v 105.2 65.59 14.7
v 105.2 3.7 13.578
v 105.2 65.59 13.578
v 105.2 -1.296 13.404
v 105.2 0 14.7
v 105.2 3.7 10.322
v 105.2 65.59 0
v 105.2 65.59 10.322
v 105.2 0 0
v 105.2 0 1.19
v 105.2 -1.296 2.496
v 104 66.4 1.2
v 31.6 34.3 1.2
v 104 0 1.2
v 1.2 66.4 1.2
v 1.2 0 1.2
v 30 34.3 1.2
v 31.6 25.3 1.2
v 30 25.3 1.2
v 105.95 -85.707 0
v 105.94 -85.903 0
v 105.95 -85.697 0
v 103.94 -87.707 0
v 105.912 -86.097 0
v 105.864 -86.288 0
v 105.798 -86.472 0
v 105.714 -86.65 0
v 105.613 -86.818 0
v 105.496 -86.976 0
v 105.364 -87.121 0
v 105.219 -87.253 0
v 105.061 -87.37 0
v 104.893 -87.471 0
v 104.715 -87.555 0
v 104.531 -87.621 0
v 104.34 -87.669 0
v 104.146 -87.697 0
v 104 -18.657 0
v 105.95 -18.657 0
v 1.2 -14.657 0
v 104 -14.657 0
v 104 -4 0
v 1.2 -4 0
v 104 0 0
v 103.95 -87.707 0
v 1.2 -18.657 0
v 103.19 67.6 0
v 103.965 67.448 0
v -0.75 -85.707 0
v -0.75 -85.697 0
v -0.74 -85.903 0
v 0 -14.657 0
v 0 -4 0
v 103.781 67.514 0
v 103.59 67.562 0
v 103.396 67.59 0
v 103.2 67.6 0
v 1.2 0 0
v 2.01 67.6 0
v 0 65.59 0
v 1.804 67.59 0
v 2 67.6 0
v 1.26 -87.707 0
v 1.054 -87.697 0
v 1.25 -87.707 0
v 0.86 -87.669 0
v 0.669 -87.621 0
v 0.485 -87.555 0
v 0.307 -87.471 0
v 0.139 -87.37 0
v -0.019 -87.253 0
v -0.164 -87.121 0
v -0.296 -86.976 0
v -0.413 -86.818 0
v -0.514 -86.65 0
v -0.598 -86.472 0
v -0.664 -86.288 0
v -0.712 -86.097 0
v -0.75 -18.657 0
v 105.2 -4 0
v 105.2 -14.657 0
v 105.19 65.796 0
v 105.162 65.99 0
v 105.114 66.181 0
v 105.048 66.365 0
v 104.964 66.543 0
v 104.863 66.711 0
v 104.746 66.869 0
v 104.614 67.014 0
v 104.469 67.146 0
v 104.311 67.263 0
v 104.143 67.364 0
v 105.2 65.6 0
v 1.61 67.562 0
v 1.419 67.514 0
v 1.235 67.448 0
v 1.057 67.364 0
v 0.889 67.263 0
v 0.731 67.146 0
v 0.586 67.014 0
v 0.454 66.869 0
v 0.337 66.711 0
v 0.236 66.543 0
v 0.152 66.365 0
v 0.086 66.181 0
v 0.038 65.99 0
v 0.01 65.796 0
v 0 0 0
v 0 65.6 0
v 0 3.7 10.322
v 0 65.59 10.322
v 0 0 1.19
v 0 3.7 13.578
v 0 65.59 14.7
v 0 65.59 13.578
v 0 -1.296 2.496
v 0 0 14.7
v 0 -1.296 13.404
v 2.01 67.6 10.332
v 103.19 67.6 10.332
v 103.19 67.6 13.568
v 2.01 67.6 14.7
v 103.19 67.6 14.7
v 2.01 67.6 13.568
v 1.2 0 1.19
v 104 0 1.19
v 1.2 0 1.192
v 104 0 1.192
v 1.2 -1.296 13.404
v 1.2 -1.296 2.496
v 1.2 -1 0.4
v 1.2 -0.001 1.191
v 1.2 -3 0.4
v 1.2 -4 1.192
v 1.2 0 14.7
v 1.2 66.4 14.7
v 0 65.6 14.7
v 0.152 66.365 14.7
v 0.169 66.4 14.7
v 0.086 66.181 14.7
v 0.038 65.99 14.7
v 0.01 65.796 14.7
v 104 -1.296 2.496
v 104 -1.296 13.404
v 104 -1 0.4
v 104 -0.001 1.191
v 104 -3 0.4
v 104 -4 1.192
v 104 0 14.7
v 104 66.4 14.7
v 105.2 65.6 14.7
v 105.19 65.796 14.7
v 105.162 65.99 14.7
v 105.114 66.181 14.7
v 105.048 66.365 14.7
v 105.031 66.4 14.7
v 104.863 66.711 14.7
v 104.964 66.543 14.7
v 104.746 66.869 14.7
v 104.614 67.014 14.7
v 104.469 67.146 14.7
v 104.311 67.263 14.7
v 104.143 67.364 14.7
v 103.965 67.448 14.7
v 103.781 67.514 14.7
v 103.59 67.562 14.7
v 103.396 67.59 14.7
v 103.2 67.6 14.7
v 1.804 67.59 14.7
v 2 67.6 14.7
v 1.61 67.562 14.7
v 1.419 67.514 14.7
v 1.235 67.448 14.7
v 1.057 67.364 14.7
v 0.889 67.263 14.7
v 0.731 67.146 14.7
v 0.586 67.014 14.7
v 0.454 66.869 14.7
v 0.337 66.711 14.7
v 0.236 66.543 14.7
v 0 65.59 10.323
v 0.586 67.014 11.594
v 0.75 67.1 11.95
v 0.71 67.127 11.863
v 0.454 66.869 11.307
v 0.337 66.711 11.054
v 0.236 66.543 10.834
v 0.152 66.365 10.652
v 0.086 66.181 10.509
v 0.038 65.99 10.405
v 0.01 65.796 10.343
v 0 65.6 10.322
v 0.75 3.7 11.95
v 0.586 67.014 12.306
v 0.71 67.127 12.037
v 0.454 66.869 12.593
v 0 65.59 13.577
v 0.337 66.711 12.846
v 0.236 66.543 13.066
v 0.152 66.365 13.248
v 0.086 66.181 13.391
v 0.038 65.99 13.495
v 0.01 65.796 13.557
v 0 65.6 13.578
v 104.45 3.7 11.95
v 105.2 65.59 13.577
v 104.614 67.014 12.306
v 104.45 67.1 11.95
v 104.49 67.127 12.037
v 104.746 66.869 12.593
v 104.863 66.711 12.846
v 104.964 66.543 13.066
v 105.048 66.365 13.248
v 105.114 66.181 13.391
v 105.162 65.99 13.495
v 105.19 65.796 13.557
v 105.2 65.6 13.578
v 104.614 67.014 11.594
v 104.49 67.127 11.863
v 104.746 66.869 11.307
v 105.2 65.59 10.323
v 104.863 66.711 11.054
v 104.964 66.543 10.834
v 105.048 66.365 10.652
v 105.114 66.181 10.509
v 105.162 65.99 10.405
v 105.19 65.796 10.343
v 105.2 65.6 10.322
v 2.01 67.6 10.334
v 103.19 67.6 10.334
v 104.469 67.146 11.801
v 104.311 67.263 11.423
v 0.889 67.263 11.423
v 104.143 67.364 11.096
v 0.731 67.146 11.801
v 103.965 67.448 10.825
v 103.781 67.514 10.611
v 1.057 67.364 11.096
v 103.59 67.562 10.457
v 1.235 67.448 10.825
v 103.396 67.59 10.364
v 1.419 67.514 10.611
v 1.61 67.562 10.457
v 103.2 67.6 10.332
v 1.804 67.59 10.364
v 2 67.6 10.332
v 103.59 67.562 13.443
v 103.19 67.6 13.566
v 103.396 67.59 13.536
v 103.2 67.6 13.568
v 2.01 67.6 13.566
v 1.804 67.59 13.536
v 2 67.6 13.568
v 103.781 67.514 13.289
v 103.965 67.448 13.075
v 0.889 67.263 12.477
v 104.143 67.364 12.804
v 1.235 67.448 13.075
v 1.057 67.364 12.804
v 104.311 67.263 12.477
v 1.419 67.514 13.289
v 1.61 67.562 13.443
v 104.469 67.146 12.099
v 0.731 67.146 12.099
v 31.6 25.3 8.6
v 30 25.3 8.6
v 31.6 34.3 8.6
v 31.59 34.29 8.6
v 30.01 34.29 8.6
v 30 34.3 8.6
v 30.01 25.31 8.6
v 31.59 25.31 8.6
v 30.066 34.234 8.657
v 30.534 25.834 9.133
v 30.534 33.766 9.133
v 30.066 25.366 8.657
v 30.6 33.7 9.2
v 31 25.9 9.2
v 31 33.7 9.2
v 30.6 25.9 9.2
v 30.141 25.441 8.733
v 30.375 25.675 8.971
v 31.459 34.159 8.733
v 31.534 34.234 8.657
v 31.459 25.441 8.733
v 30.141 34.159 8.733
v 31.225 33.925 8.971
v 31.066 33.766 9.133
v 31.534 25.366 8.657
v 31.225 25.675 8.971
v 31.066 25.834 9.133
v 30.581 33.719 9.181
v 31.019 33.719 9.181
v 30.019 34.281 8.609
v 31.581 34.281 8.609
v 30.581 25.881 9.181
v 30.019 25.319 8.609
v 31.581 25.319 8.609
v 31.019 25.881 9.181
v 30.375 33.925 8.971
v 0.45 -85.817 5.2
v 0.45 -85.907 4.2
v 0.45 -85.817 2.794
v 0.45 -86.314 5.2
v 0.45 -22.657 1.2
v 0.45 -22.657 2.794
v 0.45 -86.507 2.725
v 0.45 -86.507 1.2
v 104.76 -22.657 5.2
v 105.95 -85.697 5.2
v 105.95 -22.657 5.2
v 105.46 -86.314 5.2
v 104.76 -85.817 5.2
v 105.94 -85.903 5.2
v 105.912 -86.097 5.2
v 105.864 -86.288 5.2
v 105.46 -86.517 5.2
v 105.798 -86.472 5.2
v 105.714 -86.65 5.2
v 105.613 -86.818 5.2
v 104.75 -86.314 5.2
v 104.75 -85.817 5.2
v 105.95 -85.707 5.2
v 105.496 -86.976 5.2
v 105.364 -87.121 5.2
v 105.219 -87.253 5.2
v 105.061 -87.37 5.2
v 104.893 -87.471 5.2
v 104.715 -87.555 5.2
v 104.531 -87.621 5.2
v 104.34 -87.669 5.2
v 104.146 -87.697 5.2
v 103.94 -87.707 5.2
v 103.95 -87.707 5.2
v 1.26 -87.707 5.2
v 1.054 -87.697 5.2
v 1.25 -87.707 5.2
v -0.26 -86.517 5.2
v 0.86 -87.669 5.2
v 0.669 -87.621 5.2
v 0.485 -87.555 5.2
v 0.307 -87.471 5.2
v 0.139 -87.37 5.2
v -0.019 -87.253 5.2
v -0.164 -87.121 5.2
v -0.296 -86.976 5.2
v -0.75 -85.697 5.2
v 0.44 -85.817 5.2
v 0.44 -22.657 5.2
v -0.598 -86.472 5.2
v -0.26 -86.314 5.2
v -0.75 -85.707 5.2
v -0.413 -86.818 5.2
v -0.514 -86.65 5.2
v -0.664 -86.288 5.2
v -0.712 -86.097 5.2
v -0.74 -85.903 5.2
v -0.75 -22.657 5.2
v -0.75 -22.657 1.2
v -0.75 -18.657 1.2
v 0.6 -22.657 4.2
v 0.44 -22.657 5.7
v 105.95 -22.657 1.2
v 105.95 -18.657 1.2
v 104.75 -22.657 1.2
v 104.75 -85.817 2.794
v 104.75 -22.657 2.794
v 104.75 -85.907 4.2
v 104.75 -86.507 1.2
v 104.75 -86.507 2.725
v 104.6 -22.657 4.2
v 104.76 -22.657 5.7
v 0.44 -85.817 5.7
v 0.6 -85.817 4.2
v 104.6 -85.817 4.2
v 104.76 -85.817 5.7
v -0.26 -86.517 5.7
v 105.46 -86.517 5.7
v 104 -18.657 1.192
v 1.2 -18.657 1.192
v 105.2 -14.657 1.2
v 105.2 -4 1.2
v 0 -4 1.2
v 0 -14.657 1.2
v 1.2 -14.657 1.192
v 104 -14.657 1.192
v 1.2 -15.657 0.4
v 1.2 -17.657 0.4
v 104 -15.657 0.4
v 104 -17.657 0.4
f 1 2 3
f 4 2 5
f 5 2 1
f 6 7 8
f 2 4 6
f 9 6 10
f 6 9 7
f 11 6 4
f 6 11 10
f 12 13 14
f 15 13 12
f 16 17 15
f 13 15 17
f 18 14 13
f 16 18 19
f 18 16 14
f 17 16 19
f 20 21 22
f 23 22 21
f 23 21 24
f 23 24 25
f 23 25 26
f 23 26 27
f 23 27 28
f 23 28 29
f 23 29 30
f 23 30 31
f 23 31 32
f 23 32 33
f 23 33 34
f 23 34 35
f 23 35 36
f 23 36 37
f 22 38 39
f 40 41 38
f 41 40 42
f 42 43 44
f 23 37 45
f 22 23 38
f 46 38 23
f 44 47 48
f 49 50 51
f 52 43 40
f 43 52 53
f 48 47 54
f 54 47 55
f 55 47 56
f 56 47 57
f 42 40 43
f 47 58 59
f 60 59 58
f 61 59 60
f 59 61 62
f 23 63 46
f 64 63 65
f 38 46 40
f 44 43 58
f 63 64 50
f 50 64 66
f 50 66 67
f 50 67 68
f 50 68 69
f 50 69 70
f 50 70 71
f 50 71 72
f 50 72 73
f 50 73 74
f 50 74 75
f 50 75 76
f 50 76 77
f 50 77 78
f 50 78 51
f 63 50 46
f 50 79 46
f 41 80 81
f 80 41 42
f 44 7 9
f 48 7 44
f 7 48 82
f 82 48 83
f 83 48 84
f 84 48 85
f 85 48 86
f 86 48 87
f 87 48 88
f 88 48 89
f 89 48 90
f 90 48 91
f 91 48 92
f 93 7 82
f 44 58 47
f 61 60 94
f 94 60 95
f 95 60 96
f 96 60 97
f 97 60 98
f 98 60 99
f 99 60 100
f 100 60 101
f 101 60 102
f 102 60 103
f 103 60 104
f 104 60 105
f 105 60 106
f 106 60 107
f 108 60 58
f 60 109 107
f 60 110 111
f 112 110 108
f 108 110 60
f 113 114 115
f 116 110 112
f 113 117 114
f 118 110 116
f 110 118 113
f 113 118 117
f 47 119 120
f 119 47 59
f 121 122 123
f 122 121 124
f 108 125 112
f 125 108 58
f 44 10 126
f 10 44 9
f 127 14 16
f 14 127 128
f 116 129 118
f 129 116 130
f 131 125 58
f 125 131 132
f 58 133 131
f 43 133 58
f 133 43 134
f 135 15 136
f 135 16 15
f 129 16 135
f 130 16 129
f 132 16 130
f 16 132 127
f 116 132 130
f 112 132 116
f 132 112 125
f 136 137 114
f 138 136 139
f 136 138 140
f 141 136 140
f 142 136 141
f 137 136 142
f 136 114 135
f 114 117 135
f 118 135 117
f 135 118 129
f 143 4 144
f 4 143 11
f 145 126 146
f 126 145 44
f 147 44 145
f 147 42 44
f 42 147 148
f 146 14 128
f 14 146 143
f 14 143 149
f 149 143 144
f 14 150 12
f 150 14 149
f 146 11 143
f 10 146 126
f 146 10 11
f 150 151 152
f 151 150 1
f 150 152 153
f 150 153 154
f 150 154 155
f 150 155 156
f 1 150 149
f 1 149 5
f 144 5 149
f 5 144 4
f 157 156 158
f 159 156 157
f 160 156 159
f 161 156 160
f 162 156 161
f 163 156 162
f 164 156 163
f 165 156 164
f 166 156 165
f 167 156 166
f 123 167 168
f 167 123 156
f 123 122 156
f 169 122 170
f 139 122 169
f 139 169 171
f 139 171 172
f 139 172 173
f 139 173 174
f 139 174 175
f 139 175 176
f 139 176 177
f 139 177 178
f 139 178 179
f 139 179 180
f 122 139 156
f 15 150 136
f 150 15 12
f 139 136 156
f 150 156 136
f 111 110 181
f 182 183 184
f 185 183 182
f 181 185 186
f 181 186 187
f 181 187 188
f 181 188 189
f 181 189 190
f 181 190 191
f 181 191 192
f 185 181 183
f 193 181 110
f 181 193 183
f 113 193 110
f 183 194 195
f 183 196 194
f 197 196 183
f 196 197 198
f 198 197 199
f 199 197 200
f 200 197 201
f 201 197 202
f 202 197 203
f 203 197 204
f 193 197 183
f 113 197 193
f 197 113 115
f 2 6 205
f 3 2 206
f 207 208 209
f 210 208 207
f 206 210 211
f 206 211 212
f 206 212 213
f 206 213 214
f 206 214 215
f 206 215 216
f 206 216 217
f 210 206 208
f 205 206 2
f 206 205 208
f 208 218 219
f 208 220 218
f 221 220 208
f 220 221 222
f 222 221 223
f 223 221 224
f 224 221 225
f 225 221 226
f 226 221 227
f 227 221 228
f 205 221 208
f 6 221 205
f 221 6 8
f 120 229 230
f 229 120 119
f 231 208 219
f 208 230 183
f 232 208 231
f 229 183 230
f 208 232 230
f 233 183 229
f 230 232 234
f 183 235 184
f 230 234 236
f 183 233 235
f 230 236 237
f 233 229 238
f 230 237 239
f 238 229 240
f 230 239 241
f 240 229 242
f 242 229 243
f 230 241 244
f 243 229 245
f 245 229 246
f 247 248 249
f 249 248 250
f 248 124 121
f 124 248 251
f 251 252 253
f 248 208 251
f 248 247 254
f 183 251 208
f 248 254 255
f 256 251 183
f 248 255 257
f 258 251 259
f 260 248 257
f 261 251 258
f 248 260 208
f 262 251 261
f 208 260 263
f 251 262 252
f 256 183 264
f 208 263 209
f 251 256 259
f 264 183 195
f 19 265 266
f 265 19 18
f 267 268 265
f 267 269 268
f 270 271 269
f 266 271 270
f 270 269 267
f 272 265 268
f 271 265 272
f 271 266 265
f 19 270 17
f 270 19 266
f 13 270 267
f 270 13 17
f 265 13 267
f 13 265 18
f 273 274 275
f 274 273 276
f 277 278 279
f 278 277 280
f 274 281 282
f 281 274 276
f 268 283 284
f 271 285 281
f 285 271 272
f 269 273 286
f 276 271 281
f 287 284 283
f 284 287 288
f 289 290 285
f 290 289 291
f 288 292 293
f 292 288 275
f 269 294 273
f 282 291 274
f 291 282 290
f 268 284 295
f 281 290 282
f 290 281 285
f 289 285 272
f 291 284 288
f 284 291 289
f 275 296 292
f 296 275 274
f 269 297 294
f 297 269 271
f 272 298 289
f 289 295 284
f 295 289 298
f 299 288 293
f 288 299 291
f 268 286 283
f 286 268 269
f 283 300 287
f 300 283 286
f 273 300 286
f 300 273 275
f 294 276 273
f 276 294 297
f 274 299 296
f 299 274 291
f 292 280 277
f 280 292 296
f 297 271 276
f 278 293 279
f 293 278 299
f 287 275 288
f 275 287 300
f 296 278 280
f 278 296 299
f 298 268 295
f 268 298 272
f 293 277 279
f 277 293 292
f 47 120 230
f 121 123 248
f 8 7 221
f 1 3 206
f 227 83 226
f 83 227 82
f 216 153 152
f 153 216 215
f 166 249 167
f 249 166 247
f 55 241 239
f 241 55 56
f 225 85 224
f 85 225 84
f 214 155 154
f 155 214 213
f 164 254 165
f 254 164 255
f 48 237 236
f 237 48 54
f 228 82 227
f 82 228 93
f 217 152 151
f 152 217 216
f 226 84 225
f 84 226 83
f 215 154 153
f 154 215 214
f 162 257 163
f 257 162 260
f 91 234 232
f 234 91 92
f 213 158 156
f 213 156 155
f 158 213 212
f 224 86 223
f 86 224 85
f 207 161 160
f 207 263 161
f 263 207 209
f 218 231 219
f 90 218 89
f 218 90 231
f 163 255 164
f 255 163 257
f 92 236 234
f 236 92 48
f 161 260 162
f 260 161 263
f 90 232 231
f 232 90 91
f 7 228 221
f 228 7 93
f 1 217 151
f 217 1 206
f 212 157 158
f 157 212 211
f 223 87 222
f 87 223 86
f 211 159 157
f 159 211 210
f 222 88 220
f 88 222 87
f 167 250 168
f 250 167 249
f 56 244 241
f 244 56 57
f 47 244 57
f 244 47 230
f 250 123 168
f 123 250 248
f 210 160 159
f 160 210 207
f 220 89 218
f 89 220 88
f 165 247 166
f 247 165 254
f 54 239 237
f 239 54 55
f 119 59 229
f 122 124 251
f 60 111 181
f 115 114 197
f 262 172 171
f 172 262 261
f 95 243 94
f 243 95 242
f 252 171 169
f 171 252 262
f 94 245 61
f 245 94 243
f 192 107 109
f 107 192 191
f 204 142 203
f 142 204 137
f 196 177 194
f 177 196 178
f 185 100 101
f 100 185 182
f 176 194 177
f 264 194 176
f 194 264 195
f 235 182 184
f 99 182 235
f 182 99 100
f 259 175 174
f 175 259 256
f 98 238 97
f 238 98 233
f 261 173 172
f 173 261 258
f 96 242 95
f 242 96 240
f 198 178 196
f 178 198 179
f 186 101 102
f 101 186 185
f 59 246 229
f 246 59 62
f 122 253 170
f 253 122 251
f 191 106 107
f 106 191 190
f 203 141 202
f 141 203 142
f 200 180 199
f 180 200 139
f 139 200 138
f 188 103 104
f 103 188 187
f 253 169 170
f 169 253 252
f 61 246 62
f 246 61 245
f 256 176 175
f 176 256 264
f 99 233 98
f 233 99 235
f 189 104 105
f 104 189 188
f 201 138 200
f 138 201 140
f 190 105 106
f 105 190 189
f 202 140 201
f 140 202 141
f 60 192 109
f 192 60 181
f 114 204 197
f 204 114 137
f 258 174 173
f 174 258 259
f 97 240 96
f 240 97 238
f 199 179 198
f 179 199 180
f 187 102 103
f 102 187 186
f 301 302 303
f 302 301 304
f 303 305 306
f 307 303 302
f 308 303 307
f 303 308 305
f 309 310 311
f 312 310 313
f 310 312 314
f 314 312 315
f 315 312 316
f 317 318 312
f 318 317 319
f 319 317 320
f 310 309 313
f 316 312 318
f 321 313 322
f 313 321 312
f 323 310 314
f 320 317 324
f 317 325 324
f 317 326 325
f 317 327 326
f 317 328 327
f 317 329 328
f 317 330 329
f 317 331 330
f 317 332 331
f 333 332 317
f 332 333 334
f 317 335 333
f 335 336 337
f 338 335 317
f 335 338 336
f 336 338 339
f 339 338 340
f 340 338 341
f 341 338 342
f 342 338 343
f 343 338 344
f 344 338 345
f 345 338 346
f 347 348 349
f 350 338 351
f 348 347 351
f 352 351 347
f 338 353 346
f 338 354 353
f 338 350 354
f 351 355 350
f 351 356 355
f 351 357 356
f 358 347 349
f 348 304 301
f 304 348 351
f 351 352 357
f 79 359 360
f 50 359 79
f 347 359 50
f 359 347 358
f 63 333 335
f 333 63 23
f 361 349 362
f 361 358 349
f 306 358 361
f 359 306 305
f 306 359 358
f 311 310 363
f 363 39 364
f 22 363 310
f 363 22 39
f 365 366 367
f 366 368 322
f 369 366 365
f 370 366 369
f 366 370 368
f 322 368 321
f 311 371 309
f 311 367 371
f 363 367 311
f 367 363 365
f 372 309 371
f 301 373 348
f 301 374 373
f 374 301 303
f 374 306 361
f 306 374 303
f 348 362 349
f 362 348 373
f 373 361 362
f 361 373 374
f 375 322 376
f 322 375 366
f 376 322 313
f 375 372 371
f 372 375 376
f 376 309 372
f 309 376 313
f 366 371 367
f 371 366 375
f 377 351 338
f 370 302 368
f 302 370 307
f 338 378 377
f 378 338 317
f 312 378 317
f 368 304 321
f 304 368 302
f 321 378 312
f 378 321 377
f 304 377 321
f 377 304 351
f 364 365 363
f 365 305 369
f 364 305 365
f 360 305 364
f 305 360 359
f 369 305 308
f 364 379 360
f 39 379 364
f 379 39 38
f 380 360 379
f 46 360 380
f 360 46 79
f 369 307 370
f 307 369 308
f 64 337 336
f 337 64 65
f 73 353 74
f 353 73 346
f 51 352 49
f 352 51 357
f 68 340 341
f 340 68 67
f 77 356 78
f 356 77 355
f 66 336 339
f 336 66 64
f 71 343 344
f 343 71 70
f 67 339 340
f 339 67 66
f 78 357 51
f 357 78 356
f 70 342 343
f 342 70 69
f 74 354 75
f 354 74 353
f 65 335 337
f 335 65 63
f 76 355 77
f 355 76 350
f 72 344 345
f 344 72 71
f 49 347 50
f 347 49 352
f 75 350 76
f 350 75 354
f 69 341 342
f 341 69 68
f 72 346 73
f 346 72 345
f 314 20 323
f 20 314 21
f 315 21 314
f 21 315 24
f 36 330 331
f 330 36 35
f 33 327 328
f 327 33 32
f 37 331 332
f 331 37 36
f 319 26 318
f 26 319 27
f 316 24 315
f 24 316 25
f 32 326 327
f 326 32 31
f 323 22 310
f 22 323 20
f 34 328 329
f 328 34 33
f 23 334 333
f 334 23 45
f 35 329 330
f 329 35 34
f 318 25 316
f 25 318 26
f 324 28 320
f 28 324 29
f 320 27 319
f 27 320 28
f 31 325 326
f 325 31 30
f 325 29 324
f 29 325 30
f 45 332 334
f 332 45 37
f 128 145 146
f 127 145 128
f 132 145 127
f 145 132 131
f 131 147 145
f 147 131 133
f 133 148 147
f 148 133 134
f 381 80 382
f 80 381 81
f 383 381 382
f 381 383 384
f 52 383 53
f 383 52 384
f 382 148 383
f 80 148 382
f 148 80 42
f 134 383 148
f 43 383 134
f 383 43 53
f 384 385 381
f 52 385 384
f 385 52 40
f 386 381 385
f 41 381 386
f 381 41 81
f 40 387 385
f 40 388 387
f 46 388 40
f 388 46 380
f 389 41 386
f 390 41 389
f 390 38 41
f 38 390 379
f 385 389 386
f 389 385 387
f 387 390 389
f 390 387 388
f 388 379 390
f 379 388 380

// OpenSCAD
// one-piece compact-cassette case. export "flat" for printing.
// dimensions are millimeters. see README.md before printing the PLA hinges.

/* [view] */
layout = "flat"; // [flat, closed, hinge_test, hinge_test_flat]
show_cassette = false;

/* [cassette envelope] */
cassette_length = 101.6;
cassette_depth = 64;
cassette_thickness = 12.7;
clearance_xy = 0.6;
clearance_z = 0.8;

/* [shell] */
panel = 1.2;
wall = 1.2;
closure_gap = 0.25;
// outer radius for the 2 corners away from the hinge; the 2 corners nearest
// the hinge stay square so the hinge still meets a flush straight edge.
// kept modest relative to `wall` so the rounded corner doesn't thin out.
corner_radius = 2; // [0:0.5:6]

/* [living hinges] */
hinge_thickness = 0.4;
// flexible distance across each hinge, not its length along the spine.
hinge_length = 4;
// keep this at or above `wall` so the web meets the side walls with no dust gap.
hinge_end_inset = 1.2;
// each hinge end ramps from panel thickness up to this length before going thin,
// instead of stepping straight down to hinge_thickness.
hinge_taper = 1;

/* [lid fit] */
skirt_thickness = 1.2;
skirt_depth = 4;
skirt_clearance = 0.25;
// tighter (slightly interference) fit for the two end skirts only; keeps
// them from rattling side to side. the hinge itself has some lateral give,
// so this runs a bit negative rather than just a snug slip fit.
skirt_clearance_side = -0.45;
skirt_rear_setback = 4;
// vertical size of the lip/groove snap feature; shared by both edges so the
// bump and groove stay easy to feel/see instead of a faint sliver.
lip_height = 3; // [1:0.25:4]
// retention lip on the long edge opposite the hinge.
lip_interference = 0.35; // [0.05:0.05:0.6]
// retention lip on the two narrow end edges; these take the strain since the
// hinge already restrains the opposite long edge.
lip_interference_side = 0.6; // [0.1:0.05:0.9]
pull_tab_enabled = false;
pull_extension = 3;

/* [single rectangular hub lock] */
hub_lock_enabled = true;
// provisional blade span across opposing tooth gaps; tune to your cassette.
hub_lock_span = 9; // [7:0.1:12]
hub_lock_thickness = 1.6; // [0.8:0.1:3.2]
hub_lock_height = 8; // [4:0.2:10]
hub_lock_tip_chamfer = 0.6; // [0:0.1:1]
// zero degrees puts the long side parallel to the cassette's long edge.
hub_lock_angle = 90; // [0:5:175]
// provisional measurements from the cassette's left and non-tape edges.
// hub_lock_y was measured on a physical print/cassette to a position that
// works with the cassette inserted either direction.
hub_lock_x = 29; // [24:0.1:34]
hub_lock_y = 28; // [25:0.1:36]

/* [lettering] */
// installed font family and style; choose one from OpenSCAD's font list.
text_font = "Liberation Sans:style=Bold";
// engraving depth or raised height, measured from the exterior surface.
text_relief = 0.4; // [0.2:0.2:1]

/* [front lettering - lid] */
front_text = "";
front_text_mode = "engraved"; // [engraved, raised, off]
// font size in millimeters.
front_text_size = 8; // [2:0.5:18]
front_text_rotation = 0; // [0:90:270]
front_text_x = 0; // [-45:0.5:45]
front_text_y = 0; // [-25:0.5:25]

/* [back lettering - base] */
back_text = "";
back_text_mode = "engraved"; // [engraved, raised, off]
// font size in millimeters.
back_text_size = 8; // [2:0.5:18]
back_text_rotation = 0; // [0:90:270]
back_text_x = 0; // [-45:0.5:45]
back_text_y = 0; // [-25:0.5:25]

/* [edge lettering - spine] */
spine_text = "";
// optional right-hand label; when set, the main spine label moves to the left.
spine_text_right = "";
spine_text_mode = "engraved"; // [engraved, raised, off]
// font size in millimeters.
spine_text_size = 4; // [2:0.5:12]
spine_text_rotation = 0; // [0:90:270]
spine_text_x = 0; // [-45:0.5:45]
spine_text_y = 0; // [-4:0.5:4]

/* [Hidden] */
$fn = 64;
eps = 0.01;
w = cassette_length + 2 * (clearance_xy + wall);
d = cassette_depth + 2 * (clearance_xy + wall);
wall_top = panel + cassette_thickness + clearance_z;
lid_inner_z = wall_top + closure_gap;
closed_height = lid_inner_z + panel;
neutral_z = hinge_thickness / 2;
// each 90-degree bend consumes a quarter-circle of the flat web.
bend_r = 2 * hinge_length / PI;
spine_length = closed_height - hinge_thickness - 2 * bend_r;
fold_span = 2 * hinge_length + spine_length;
hinge_width = w - 2 * hinge_end_inset;
skirt_outer = skirt_clearance + skirt_thickness;
skirt_outer_side = skirt_clearance_side + skirt_thickness;
pull_projection = pull_tab_enabled ? pull_extension : 0;
lip_half_height = lip_height / 2;
lip_z = panel + skirt_depth - 1;
groove_z = closed_height - lip_z;
rear_extension = max(0, bend_r - (panel - neutral_z) - closure_gap);
lock_half_x = (abs(cos(hub_lock_angle)) * hub_lock_span +
               abs(sin(hub_lock_angle)) * hub_lock_thickness) / 2;
lock_half_y = (abs(sin(hub_lock_angle)) * hub_lock_span +
               abs(cos(hub_lock_angle)) * hub_lock_thickness) / 2;

assert(layout == "flat" || layout == "closed" ||
       layout == "hinge_test" || layout == "hinge_test_flat",
       "choose flat, closed, hinge_test, or hinge_test_flat.");
assert(min(cassette_length, cassette_depth, cassette_thickness,
           clearance_xy, clearance_z, panel, wall, closure_gap,
           hinge_thickness, hinge_length, skirt_thickness, skirt_clearance) > 0,
       "shell, cassette, hinge and clearance dimensions must be positive.");
assert(hinge_thickness < panel && spine_length > panel,
       "hinges must be thinner than panels; reduce hinge_length for this depth.");
assert(corner_radius >= 0 && corner_radius < min(w, d) / 4 &&
       corner_radius < d - skirt_rear_setback,
       "corner_radius must stay small relative to the shell and clear the hinge skirt setback.");
assert(hinge_end_inset >= wall && hinge_width > 0,
       "hinge_end_inset must reach the side walls (>= wall) with a positive hinge width.");
assert(hinge_taper >= 0 && 2 * hinge_taper < hinge_length,
       "hinge_taper must leave a positive thin flex zone in the middle of the hinge.");
assert(skirt_clearance_side > -skirt_thickness,
       "skirt_clearance_side must leave positive material in the end skirts.");
assert(skirt_rear_setback > rear_extension && skirt_rear_setback < d,
       "keep the lid skirt clear of the spine.");
assert(lip_interference > 0 && lip_interference + 0.15 < wall &&
       lip_interference_side > 0 && lip_interference_side + 0.15 < wall,
       "lips need positive interference and material behind their grooves.");
assert(skirt_depth > 1 + lip_half_height + 0.15 &&
       groove_z - lip_half_height - 0.15 > panel &&
       groove_z + lip_half_height + 0.15 < wall_top,
       "lip_height must fit within the skirt and base walls.");
assert(!pull_tab_enabled || pull_extension > 0,
       "enabled pull tab must have a positive extension.");
assert(!hub_lock_enabled ||
       (min(hub_lock_span, hub_lock_thickness, hub_lock_height) > 0 &&
        hub_lock_height < cassette_thickness &&
        hub_lock_tip_chamfer >= 0 &&
        hub_lock_tip_chamfer < min(hub_lock_span, hub_lock_thickness) / 2 &&
        hub_lock_tip_chamfer < hub_lock_height &&
        hub_lock_x > lock_half_x &&
        hub_lock_x < cassette_length - lock_half_x &&
        hub_lock_y > lock_half_y &&
        hub_lock_y < cassette_depth - lock_half_y),
       "keep the lock inside the cassette; chamfer must leave a positive tip.");

echo(print_footprint = [w + 2 * skirt_outer_side,
     2 * d + fold_span + skirt_outer + pull_projection],
     nominal_closed_size = [w + 2 * skirt_outer_side,
     d + skirt_outer + pull_projection + bend_r + neutral_z, closed_height],
     hinge_radius = bend_r, straight_spine = spine_length);

// extrude a Y/Z profile along X without changing its handedness.
module yz_prism(points, length) {
    multmatrix([[0, 0, 1, 0], [1, 0, 0, 0],
                [0, 1, 0, 0], [0, 0, 0, 1]])
        linear_extrude(height = length) polygon(points);
}

// extrude an X/Z profile along Y.
module xz_prism(points, length) {
    translate([0, length, 0])
        rotate([90, 0, 0])
            linear_extrude(height = length) polygon(points);
}

// subtracts the sharp sliver outside a radius-r quarter circle at corner
// (cx, cy); (sx, sy) each +-1 and point from the corner into the solid.
// the cube is padded by eps on every side so none of its corners land
// exactly on the circle (an exact tangency there causes non-manifold
// results).
module round_outer_corner(cx, cy, sx, sy, r, z0, z1) {
    if (r > 0)
        translate([cx + min(sx, 0) * r - eps, cy + min(sy, 0) * r - eps, z0])
            difference() {
                cube([r + 2 * eps, r + 2 * eps, z1 - z0]);
                translate([max(sx, 0) * r + eps, max(sy, 0) * r + eps, -eps])
                    cylinder(r = r, h = z1 - z0 + 2 * eps);
            }
}

module exterior_label(value, mode, size, angle, offset_x, offset_y,
                      face_depth, flip_y = true, right_value = "") {
    assert(mode == "engraved" || mode == "raised" || mode == "off",
           "text mode must be engraved, raised, or off.");
    if ((value != "" || right_value != "") && mode != "off") {
        assert(size > 0 && text_relief > 0 && w > 2 && face_depth > 2,
               "lettering needs positive size, relief and usable face area.");
        assert(mode != "engraved" || panel - text_relief >= 0.4 - 0.000001,
               "engraving must leave at least 0.4 mm of panel thickness.");
        assert(angle == 0 || angle == 90 || angle == 180 || angle == 270,
               "text rotation must be 0, 90, 180, or 270 degrees.");
        echo("lettering is clipped 1 mm inside its face; check size and position.",
             face_text = value, right_text = right_value);
        if (mode == "raised")
            echo("WARNING: raised exterior lettering projects below the flat print; review bed contact and supports.");
    }
    difference() {
        union() {
            children();
            if ((value != "" || right_value != "") && mode == "raised")
                label_shape(true);
        }
        if ((value != "" || right_value != "") && mode == "engraved")
            label_shape(false);
    }

    module label_shape(raised) {
        translate([0, 0, raised ? -text_relief : -eps])
            linear_extrude(height = text_relief + eps)
                intersection() {
                    translate([1, 1]) square([w - 2, face_depth - 2]);
                    translate([w / 2, face_depth / 2])
                        // compensate for viewing the outside of each folded face.
                        scale([1, flip_y ? -1 : 1])
                            translate([offset_x, offset_y])
                                rotate(angle) {
                                    if (right_value == "")
                                        text(value, size = size, font = text_font,
                                             halign = "center", valign = "center");
                                    else {
                                        translate([-w / 2 + 1, 0])
                                            text(value, size = size, font = text_font,
                                                 halign = "left", valign = "center");
                                        translate([w / 2 - 1, 0])
                                            text(right_value, size = size, font = text_font,
                                                 halign = "right", valign = "center");
                                    }
                                }
                }
    }
}

module side_wall() {
    yz_prism([
        [0, panel - eps],
        [d, panel - eps],
        [d, wall_top],
        [0, wall_top],
        [-rear_extension, wall_top - rear_extension],
        [-rear_extension, panel + rear_extension]
    ], wall);
}

module side_groove() {
    // clearance around the seated lip; only the closing motion interferes.
    depth = lip_interference_side + 0.15;
    half_h = lip_half_height + 0.15;
    translate([0, skirt_rear_setback - 0.3, groove_z])
        xz_prism([[-eps, -half_h], [depth, 0], [-eps, half_h]],
                 d - skirt_rear_setback + 0.3 + eps);
}

module perimeter_groove() {
    side_groove();
    translate([w, 0, 0]) mirror([1, 0, 0]) side_groove();
    depth = lip_interference + 0.15;
    half_h = lip_half_height + 0.15;
    translate([-eps, d, groove_z])
        yz_prism([[eps, -half_h], [-depth, 0], [eps, half_h]], w + 2 * eps);
}

module hub_lock() {
    translate([wall + clearance_xy + hub_lock_x,
               wall + clearance_xy + hub_lock_y, panel - eps])
        rotate([0, 0, hub_lock_angle]) {
            linear_extrude(height = hub_lock_height - hub_lock_tip_chamfer + eps)
                square([hub_lock_span, hub_lock_thickness], center = true);
            if (hub_lock_tip_chamfer > 0)
                translate([0, 0, hub_lock_height - hub_lock_tip_chamfer])
                    linear_extrude(height = hub_lock_tip_chamfer + eps,
                                   scale = [
                                       1 - 2 * hub_lock_tip_chamfer / hub_lock_span,
                                       1 - 2 * hub_lock_tip_chamfer / hub_lock_thickness
                                   ])
                        square([hub_lock_span, hub_lock_thickness], center = true);
        }
}

module base_shell() {
    difference() {
        union() {
            cube([w, d, panel]);
            side_wall();
            translate([w - wall, 0, 0]) side_wall();
            translate([0, d - wall, panel - eps])
                cube([w, wall, wall_top - panel + eps]);
        }
        perimeter_groove();
    }
    if (hub_lock_enabled) hub_lock();
}

module base() {
    difference() {
        exterior_label(back_text, back_text_mode, back_text_size,
                       back_text_rotation, back_text_x, back_text_y, d)
            base_shell();
        round_outer_corner(w, d, -1, -1, corner_radius, 0, wall_top);
        round_outer_corner(0, d, 1, -1, corner_radius, 0, wall_top);
    }
}

module spine() {
    exterior_label(spine_text, spine_text_mode, spine_text_size,
                   spine_text_rotation, spine_text_x, spine_text_y, spine_length,
                   true, spine_text_right)
        cube([w, spine_length, panel]);
}

module side_lip() {
    translate([0, skirt_rear_setback, lip_z])
        xz_prism([
            [-skirt_clearance_side - eps, -lip_half_height],
            [lip_interference_side, 0],
            [-skirt_clearance_side - eps, lip_half_height]
        ], d + skirt_clearance_side - skirt_rear_setback + eps);
}

module perimeter_lip() {
    side_lip();
    translate([w, 0, 0]) mirror([1, 0, 0]) side_lip();
    translate([-skirt_clearance - eps, d, lip_z])
        yz_prism([
            [skirt_clearance + eps, -lip_half_height],
            [-lip_interference, 0],
            [skirt_clearance + eps, lip_half_height]
        ], w + 2 * skirt_clearance + 2 * eps);
}

module lid_shell() {
    translate([-skirt_outer_side, 0, 0])
        cube([w + 2 * skirt_outer_side, d + skirt_outer, panel]);
    for (x = [-skirt_outer_side, w + skirt_clearance_side])
        translate([x, skirt_rear_setback, panel - eps])
            cube([skirt_thickness, d + skirt_outer - skirt_rear_setback,
                  skirt_depth + eps]);
    translate([-skirt_outer_side, d + skirt_clearance, panel - eps])
        cube([w + 2 * skirt_outer_side, skirt_thickness, skirt_depth + eps]);
    perimeter_lip();
    if (pull_tab_enabled)
        translate([-skirt_outer_side, d + skirt_outer - eps, 0])
            cube([w + 2 * skirt_outer_side, pull_extension + eps, panel]);
}

module lid() {
    difference() {
        exterior_label(front_text, front_text_mode, front_text_size,
                       front_text_rotation, front_text_x, front_text_y, d, false)
            lid_shell();
        round_outer_corner(-skirt_outer_side, d + skirt_outer, 1, -1,
                            corner_radius, 0, panel + skirt_depth);
        round_outer_corner(w + skirt_outer_side, d + skirt_outer, -1, -1,
                            corner_radius, 0, panel + skirt_depth);
    }
}

module flat_web(y) {
    // ramps from panel thickness up at each rigid neighbor down to
    // hinge_thickness in the middle, instead of an abrupt step, so the
    // flex zone isn't a stress riser right where it meets rigid material.
    translate([hinge_end_inset, y, 0])
        yz_prism([
            [-eps, 0],
            [hinge_length + eps, 0],
            [hinge_length + eps, panel],
            [hinge_length - hinge_taper, hinge_thickness],
            [hinge_taper, hinge_thickness],
            [-eps, panel]
        ], hinge_width);
}

module flat_case() {
    union() {
        base();
        flat_web(-hinge_length);
        translate([0, -hinge_length - spine_length, 0])
            spine();
        flat_web(-fold_span);
        translate([0, -fold_span, 0]) mirror([0, 1, 0]) lid();
    }
}

module curved_web(upper = false) {
    // neutral-axis length is preserved; this is a geometric, not fatigue, model.
    angles = concat([-0.3], [for (a = [0 : 3 : 90]) a], [90.3]);
    points = concat(
        [for (a = angles)
            [-(bend_r - neutral_z) * sin(a),
             neutral_z + bend_r - (bend_r - neutral_z) * cos(a)]],
        [for (i = [len(angles) - 1 : -1 : 0])
            let(a = angles[i])
            [-(bend_r + neutral_z) * sin(a),
             neutral_z + bend_r - (bend_r + neutral_z) * cos(a)]]
    );
    if (upper)
        translate([0, 0, closed_height]) mirror([0, 0, 1]) curved_web();
    else
        translate([hinge_end_inset, 0, 0]) yz_prism(points, hinge_width);
}

module closed_case() {
    union() {
        base();
        curved_web();
        translate([0, -bend_r, neutral_z + bend_r])
            rotate([-90, 0, 0])
                translate([0, -spine_length, -neutral_z])
                    spine();
        curved_web(true);
        translate([0, 0, closed_height]) mirror([0, 0, 1]) lid();
    }
}

module hinge_test(closed = true) {
    rear = closed ? -bend_r - neutral_z - text_relief - eps : -fold_span - 18;
    intersection() {
        if (closed) closed_case();
        else flat_case();
        translate([-skirt_outer_side, rear, -text_relief - eps])
            cube([24, 18 - rear, closed_height + 2 * text_relief + 2 * eps]);
    }
}

if (layout == "flat")
    flat_case();
else if (layout == "closed")
    closed_case();
else if (layout == "hinge_test")
    hinge_test();
else
    hinge_test(false);

if (show_cassette && (layout == "flat" || layout == "closed"))
    %color([0.3, 0.6, 0.9, 0.5])
        translate([wall + clearance_xy, wall + clearance_xy, panel])
            difference() {
                cube([cassette_length, cassette_depth, cassette_thickness]);
                translate([hub_lock_x, hub_lock_y, -eps])
                    cylinder(h = cassette_thickness + 2 * eps,
                             d = sqrt(pow(hub_lock_span, 2) +
                                      pow(hub_lock_thickness, 2)) + 1);
            }
